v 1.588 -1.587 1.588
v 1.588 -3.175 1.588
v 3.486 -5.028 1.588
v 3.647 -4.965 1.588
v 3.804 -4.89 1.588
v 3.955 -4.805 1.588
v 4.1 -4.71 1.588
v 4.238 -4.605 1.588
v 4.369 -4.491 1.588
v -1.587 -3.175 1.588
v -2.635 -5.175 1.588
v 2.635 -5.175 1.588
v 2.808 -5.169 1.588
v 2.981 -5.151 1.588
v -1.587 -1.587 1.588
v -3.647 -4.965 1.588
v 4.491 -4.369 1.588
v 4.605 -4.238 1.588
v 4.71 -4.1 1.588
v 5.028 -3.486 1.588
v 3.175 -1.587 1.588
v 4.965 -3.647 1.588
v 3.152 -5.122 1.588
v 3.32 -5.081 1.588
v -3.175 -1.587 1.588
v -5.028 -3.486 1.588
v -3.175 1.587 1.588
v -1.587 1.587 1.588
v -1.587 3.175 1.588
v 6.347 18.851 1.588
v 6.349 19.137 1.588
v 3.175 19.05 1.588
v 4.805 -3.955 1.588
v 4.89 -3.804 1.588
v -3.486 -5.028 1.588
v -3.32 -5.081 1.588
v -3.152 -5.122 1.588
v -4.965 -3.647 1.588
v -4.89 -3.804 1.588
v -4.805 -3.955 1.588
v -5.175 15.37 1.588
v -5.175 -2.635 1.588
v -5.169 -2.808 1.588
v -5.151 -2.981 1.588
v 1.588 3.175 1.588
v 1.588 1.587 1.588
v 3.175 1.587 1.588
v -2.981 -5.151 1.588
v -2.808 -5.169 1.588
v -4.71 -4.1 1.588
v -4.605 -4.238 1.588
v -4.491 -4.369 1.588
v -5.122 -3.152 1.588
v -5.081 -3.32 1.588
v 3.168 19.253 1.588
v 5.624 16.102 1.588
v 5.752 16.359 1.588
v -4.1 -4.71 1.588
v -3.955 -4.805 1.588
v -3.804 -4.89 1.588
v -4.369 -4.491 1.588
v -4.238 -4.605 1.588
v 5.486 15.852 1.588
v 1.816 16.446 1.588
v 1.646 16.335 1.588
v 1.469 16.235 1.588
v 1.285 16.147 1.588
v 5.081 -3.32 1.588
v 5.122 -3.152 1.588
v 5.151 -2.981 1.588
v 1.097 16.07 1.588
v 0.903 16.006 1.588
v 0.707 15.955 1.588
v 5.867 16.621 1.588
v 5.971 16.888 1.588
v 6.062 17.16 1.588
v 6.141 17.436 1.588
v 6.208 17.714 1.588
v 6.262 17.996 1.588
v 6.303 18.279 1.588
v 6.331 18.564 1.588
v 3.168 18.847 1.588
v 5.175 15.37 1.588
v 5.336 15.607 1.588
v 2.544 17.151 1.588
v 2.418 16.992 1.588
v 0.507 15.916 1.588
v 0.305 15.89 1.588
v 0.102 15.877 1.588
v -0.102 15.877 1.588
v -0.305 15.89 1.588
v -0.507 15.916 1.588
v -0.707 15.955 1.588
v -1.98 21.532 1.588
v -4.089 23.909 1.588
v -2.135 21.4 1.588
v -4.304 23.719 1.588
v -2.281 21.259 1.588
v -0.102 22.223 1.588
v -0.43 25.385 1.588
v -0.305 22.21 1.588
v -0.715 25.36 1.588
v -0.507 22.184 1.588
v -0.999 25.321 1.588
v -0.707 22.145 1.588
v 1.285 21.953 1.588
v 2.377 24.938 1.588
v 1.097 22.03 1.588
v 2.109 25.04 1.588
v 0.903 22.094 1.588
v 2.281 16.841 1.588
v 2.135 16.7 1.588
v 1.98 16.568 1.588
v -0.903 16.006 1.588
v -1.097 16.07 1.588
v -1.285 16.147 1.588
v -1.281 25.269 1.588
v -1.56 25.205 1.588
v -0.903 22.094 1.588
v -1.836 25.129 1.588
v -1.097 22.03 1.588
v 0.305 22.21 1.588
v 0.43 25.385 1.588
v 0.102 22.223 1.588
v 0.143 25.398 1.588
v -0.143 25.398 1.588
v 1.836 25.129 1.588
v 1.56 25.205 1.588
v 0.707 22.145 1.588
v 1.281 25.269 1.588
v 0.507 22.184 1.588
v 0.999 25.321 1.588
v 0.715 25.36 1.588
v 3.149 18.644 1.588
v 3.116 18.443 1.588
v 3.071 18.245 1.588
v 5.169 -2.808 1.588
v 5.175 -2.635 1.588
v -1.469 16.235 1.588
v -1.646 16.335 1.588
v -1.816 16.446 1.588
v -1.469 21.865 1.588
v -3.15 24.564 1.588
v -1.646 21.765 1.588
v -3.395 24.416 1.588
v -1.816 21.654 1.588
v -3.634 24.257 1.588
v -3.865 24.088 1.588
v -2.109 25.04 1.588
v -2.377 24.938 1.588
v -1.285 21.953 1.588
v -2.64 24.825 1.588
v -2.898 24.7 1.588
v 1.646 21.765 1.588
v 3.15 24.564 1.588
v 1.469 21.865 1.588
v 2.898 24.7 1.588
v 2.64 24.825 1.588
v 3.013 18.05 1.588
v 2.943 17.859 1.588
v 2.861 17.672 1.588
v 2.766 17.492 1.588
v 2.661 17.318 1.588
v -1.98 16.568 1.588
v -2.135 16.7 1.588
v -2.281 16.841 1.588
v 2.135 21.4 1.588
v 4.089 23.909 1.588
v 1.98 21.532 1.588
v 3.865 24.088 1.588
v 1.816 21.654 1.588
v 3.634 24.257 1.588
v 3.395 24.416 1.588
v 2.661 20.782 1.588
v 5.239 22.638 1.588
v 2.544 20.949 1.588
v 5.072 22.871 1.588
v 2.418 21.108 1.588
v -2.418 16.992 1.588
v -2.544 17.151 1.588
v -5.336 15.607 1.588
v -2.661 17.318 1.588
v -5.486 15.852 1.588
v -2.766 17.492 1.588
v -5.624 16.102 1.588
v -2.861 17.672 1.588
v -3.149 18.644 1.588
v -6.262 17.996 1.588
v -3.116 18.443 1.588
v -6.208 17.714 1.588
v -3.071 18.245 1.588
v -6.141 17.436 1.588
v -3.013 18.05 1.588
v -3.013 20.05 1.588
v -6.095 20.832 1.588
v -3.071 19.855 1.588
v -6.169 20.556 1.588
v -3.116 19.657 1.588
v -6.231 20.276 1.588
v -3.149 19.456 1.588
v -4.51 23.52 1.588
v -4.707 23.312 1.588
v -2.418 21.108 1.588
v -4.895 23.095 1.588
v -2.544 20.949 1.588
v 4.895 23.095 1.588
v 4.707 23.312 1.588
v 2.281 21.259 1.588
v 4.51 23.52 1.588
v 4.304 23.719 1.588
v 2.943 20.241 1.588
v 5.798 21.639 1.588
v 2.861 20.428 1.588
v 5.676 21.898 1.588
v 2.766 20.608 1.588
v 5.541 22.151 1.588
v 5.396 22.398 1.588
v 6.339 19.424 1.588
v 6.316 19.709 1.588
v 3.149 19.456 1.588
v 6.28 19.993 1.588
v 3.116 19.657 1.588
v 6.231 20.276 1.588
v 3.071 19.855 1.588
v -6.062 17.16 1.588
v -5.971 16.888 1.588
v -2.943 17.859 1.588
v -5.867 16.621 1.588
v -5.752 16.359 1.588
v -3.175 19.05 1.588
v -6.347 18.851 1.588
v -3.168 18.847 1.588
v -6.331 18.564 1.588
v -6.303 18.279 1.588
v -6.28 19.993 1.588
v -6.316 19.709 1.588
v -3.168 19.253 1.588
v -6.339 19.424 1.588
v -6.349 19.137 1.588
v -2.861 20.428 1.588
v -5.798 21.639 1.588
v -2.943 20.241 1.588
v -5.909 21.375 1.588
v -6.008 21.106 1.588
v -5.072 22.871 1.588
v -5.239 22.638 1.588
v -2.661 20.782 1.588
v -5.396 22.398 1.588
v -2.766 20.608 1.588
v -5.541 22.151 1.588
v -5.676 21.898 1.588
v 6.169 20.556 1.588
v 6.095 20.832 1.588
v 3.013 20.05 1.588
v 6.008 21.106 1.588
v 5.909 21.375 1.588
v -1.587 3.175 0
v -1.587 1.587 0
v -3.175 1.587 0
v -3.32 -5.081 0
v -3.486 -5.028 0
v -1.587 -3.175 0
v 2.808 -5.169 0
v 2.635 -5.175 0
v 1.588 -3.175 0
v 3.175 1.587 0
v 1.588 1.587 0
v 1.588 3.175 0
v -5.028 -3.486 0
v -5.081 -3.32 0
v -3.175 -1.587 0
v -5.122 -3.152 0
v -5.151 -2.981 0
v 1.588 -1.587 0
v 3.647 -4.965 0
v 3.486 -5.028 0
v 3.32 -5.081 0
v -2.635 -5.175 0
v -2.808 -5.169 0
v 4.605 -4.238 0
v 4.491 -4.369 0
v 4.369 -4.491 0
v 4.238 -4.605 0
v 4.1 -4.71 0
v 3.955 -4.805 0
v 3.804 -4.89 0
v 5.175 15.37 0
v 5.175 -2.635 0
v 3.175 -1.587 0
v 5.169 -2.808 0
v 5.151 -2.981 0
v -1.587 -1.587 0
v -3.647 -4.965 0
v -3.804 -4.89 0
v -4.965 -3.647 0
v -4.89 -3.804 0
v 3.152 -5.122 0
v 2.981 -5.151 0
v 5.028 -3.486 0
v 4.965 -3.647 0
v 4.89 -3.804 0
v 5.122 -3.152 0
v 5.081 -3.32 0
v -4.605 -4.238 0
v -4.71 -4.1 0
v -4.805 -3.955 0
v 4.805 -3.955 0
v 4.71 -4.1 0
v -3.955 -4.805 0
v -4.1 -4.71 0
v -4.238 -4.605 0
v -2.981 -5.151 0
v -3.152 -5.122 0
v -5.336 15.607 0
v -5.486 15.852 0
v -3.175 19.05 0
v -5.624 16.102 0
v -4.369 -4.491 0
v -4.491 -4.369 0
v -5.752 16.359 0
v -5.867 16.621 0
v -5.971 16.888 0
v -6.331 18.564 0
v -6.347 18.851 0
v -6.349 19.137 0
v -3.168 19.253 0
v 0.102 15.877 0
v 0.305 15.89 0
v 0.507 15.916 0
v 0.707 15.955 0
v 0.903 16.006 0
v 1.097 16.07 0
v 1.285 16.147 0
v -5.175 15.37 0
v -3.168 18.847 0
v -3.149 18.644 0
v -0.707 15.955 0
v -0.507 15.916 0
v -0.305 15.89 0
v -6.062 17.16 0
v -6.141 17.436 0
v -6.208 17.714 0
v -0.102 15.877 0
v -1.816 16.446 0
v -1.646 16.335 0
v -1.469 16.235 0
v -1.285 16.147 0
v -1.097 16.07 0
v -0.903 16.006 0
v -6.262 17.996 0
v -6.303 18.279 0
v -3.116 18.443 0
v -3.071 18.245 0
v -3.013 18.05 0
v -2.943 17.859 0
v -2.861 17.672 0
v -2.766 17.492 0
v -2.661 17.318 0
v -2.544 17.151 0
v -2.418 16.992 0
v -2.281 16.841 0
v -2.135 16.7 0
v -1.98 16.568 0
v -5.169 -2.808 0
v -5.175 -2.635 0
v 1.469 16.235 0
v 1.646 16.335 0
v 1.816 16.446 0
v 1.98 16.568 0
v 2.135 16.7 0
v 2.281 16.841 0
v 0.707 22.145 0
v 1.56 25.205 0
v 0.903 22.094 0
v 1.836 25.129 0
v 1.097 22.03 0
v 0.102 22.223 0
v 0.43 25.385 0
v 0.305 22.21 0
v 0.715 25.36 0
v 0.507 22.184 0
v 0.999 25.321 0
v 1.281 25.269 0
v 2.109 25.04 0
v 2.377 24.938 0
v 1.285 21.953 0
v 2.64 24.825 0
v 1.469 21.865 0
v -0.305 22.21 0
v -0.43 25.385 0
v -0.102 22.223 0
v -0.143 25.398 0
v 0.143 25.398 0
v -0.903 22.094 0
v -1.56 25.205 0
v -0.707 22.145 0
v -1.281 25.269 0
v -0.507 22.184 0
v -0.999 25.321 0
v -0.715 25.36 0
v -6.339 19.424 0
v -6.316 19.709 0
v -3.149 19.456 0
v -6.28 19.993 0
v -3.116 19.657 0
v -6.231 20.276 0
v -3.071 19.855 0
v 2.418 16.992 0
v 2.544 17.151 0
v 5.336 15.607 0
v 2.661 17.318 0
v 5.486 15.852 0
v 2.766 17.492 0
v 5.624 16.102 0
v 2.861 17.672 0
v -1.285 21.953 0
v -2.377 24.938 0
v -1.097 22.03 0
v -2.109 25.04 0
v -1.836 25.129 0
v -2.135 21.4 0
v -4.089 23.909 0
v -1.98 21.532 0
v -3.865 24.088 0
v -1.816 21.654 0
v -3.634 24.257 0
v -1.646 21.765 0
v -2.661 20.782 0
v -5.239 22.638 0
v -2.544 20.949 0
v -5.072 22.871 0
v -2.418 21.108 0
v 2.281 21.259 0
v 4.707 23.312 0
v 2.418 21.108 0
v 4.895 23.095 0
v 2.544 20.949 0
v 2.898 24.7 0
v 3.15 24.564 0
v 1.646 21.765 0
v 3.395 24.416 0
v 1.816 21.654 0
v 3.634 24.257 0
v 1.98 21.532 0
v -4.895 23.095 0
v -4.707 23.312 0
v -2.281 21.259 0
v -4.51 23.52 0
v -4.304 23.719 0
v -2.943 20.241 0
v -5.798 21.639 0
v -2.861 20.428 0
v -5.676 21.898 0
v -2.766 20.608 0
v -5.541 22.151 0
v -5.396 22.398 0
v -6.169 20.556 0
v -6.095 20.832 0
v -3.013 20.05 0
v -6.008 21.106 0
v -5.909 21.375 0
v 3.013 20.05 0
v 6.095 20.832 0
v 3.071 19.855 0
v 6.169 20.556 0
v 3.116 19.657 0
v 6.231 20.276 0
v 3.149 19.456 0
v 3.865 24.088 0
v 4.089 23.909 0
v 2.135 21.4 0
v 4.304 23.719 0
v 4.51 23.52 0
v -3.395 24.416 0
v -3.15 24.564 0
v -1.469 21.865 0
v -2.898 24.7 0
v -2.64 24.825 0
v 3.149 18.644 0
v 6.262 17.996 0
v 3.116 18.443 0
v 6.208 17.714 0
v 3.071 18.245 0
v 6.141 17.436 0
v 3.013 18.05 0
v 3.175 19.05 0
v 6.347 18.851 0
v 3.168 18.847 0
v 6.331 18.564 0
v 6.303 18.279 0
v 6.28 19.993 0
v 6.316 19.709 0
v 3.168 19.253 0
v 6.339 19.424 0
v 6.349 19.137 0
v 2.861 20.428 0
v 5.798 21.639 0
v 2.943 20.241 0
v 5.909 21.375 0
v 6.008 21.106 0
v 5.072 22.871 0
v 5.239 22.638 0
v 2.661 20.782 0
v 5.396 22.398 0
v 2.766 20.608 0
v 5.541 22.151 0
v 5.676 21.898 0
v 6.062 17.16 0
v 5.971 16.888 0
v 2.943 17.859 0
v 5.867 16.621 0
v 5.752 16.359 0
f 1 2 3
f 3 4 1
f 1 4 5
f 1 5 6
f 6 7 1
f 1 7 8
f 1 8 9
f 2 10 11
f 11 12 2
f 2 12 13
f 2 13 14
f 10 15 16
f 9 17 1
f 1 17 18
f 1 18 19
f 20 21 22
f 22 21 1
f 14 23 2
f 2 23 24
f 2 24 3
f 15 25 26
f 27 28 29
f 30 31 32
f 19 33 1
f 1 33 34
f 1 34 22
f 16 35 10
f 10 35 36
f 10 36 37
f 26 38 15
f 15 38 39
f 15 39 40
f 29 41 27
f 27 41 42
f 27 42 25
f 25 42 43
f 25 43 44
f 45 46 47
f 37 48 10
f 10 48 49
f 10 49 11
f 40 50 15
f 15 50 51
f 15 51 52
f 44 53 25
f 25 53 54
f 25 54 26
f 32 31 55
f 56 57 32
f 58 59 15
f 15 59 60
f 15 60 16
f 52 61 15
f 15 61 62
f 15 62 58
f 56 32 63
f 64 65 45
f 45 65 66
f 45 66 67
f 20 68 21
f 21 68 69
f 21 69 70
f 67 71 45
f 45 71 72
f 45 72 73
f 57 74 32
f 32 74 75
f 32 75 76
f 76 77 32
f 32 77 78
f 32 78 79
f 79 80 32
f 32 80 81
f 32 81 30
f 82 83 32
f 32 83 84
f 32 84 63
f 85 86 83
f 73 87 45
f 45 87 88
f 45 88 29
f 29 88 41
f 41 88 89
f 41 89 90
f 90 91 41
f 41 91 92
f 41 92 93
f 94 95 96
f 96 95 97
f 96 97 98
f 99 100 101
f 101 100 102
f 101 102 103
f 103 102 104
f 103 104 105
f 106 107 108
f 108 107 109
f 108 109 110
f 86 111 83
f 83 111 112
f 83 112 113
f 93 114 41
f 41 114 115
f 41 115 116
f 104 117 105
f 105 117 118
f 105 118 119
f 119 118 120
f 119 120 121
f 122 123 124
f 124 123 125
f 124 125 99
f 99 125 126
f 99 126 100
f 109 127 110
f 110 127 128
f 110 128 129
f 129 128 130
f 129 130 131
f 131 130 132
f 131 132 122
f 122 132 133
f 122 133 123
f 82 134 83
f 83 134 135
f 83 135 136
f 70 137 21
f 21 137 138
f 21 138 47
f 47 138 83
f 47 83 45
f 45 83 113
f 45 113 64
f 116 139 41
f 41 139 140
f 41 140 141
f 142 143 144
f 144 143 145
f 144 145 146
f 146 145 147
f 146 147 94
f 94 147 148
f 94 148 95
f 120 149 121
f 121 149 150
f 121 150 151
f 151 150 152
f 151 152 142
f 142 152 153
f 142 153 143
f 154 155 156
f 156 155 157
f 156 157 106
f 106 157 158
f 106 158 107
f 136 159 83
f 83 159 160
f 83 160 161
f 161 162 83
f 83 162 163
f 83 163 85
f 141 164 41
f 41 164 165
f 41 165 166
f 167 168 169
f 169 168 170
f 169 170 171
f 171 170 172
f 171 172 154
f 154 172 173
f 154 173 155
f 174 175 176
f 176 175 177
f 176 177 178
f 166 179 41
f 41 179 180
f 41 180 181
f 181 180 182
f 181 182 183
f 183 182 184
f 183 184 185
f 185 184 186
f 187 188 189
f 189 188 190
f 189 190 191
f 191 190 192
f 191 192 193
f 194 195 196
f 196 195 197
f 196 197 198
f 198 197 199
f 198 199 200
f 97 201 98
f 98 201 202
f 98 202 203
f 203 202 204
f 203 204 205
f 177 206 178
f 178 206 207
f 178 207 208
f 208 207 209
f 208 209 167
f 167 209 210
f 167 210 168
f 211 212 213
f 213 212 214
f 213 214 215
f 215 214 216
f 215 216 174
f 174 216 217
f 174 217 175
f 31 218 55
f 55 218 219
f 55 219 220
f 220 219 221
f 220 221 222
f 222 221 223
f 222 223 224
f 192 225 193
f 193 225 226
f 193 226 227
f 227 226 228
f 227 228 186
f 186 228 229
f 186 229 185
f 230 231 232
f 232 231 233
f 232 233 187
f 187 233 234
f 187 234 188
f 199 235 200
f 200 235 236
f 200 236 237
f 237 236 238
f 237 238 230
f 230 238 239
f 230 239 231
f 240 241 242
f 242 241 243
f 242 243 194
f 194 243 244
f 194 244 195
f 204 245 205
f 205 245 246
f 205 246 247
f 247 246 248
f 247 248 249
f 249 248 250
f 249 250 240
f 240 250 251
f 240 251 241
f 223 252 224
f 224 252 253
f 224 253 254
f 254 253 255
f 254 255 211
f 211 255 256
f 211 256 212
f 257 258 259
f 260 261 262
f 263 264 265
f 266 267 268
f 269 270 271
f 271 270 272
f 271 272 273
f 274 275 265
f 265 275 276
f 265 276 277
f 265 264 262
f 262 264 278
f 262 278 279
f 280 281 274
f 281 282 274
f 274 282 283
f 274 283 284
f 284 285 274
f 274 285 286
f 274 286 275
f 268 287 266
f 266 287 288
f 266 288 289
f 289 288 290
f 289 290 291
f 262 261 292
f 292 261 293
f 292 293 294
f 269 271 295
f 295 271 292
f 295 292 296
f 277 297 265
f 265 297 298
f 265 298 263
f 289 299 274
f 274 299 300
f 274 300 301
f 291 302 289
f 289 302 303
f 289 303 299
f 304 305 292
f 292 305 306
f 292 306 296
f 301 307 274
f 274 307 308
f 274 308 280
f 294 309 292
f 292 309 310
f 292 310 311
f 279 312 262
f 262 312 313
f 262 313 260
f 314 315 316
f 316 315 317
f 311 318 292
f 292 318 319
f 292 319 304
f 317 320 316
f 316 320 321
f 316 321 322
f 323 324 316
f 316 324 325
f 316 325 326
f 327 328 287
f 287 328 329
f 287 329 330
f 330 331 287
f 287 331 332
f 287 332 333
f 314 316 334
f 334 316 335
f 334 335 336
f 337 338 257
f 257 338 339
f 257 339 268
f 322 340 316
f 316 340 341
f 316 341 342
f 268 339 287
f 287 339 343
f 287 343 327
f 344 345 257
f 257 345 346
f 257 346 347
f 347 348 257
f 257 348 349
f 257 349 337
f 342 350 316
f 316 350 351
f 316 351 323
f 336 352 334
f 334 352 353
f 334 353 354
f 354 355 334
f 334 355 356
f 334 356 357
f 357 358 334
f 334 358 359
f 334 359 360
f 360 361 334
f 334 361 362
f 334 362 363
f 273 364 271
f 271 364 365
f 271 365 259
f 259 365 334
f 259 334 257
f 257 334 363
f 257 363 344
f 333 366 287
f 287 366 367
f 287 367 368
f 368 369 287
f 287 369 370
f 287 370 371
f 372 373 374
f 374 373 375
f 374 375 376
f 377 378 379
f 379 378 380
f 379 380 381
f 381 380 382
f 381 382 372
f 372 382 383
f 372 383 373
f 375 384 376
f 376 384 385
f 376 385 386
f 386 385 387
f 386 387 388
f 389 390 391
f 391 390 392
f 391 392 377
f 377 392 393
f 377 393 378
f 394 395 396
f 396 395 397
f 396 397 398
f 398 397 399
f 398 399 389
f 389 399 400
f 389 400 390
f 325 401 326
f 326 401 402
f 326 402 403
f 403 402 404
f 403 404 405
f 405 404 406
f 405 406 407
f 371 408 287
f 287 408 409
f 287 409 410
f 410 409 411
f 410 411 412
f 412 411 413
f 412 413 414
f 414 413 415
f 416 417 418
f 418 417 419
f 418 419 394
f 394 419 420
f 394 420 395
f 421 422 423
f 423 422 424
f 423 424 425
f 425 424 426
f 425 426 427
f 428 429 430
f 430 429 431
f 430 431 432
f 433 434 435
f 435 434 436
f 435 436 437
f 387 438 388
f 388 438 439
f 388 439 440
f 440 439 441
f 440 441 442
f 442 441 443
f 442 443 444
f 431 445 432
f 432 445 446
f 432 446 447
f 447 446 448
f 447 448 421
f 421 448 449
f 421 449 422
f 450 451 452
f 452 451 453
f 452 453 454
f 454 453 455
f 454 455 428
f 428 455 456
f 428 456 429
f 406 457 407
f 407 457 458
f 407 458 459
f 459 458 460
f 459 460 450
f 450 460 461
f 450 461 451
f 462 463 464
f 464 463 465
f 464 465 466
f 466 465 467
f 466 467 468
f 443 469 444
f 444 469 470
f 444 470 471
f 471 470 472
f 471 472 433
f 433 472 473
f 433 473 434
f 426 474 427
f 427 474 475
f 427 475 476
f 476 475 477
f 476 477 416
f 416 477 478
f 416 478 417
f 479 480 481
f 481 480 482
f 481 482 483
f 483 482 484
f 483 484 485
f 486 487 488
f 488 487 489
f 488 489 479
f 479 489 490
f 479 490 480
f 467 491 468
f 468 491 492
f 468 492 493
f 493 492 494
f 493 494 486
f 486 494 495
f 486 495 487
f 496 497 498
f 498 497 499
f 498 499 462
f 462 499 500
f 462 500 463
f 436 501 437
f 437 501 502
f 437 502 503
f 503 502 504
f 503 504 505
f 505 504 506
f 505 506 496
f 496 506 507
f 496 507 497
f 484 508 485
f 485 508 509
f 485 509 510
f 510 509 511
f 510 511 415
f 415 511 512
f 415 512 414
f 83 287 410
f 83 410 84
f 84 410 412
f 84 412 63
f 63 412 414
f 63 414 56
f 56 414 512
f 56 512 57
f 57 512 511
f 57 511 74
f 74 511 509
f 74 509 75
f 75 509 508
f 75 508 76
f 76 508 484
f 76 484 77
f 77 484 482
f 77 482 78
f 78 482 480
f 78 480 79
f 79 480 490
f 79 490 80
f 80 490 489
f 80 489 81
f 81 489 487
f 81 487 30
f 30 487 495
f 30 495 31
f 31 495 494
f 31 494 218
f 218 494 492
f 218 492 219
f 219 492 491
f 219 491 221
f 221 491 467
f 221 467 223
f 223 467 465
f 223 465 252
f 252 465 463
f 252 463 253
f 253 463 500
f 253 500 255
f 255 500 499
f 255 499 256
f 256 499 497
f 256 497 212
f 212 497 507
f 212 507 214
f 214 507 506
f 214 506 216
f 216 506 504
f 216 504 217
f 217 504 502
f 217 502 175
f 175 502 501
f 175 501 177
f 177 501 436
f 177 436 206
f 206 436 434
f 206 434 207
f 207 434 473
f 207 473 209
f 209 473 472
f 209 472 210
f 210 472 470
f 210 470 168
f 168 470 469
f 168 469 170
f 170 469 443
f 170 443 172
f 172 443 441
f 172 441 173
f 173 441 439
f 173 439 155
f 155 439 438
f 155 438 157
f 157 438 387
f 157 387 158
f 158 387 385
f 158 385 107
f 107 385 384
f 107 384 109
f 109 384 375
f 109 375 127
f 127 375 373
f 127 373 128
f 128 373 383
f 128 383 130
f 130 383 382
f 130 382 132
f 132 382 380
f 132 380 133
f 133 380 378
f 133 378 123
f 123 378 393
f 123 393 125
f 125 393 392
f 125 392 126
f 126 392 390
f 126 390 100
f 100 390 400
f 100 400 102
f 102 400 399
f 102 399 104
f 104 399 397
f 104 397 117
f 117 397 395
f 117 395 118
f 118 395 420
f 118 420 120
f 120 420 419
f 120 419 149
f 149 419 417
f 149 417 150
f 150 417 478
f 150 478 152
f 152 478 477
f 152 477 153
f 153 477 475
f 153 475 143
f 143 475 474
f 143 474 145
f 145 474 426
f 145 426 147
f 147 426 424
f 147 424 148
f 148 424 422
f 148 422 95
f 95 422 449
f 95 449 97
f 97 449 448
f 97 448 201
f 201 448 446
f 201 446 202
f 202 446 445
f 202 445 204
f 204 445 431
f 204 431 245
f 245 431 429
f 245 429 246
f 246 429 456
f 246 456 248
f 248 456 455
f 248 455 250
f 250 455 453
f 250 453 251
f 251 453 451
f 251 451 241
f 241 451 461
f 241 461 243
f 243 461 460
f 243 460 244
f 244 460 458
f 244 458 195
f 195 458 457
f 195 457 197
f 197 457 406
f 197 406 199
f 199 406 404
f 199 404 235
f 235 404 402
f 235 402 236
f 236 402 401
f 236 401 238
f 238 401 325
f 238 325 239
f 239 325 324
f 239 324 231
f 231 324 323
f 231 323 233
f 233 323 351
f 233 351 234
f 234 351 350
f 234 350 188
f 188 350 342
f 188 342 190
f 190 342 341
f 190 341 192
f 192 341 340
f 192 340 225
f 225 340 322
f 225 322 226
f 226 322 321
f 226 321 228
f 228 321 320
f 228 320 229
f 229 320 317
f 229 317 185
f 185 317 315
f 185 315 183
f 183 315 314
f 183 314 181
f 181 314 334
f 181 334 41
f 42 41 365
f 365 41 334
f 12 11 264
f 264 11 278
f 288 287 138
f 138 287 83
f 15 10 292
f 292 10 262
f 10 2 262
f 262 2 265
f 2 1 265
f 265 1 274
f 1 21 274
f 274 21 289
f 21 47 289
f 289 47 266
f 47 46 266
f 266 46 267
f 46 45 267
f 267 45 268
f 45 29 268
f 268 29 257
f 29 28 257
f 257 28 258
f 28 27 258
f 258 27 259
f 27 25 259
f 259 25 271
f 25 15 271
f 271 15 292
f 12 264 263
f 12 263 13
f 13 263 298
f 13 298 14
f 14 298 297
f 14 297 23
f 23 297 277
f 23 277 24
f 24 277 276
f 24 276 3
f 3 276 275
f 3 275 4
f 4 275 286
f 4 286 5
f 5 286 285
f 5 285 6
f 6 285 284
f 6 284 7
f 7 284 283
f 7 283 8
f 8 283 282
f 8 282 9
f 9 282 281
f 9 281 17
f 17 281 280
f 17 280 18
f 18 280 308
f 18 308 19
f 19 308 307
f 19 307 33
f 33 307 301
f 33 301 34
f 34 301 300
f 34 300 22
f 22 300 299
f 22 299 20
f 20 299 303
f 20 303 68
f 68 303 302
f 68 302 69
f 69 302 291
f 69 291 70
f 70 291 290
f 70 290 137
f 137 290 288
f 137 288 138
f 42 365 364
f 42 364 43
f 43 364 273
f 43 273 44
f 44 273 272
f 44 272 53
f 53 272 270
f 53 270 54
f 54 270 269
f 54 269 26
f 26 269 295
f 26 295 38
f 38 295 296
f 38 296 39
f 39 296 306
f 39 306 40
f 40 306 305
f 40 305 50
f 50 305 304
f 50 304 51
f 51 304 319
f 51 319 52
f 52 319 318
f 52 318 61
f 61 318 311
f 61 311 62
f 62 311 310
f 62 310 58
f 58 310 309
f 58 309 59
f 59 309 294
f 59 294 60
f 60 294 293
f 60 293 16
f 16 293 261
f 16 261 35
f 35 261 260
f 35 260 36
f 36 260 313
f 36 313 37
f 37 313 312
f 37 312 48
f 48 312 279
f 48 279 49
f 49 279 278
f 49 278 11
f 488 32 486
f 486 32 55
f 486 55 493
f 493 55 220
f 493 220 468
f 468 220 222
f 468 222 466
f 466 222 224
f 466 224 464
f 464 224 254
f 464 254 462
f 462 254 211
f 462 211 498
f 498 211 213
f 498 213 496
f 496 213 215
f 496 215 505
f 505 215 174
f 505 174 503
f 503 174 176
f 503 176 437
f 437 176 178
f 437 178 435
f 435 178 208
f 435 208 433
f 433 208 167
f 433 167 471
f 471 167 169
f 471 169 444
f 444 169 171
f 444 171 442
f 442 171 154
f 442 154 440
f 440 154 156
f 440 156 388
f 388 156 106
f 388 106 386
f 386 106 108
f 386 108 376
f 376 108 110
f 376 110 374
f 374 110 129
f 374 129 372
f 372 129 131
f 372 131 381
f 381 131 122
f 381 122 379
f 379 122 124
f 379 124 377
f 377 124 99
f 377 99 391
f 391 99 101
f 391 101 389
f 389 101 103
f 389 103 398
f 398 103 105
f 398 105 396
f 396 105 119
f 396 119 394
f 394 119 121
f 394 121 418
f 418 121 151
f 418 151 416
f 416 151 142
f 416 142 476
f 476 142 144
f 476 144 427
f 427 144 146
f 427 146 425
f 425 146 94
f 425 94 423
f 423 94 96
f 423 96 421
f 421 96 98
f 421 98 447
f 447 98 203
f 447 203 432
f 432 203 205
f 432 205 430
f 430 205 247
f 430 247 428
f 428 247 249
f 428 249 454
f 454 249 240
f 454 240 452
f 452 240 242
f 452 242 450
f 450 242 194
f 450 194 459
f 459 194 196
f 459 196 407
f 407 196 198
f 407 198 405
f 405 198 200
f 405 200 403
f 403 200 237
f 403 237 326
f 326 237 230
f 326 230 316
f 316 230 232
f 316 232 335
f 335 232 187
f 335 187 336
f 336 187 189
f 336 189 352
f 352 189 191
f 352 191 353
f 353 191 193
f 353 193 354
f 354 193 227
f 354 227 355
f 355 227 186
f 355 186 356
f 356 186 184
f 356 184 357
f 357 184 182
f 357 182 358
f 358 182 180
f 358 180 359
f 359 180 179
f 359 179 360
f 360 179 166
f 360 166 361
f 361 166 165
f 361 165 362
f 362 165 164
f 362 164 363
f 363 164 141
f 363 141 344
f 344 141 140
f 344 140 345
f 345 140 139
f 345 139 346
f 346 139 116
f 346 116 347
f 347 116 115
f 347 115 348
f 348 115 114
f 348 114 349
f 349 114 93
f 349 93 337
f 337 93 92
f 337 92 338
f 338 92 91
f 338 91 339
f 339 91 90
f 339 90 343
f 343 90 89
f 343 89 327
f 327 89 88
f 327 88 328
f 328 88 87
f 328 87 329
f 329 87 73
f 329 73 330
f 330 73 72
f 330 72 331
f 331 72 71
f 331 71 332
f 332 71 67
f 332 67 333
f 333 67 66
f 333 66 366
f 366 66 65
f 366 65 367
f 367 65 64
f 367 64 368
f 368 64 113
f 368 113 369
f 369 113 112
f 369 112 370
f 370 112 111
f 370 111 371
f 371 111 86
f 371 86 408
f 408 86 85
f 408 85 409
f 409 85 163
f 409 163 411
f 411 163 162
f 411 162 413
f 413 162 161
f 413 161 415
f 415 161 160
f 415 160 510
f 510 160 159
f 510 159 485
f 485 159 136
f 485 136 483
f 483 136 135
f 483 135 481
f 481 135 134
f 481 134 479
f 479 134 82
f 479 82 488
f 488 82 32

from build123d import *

# Parameters (mm, degrees)
BOSS_EXTRUDE1_DEPTH = 1.5875
FILLET1_R           = 2.54
SKETCH2_R           = 3.175
CUT_EXTRUDE1_DEPTH  = 27.229804731


with BuildPart() as part:
    # Sketch1 → Boss-Extrude1 (new body)
    with BuildSketch(Plane.XY):
        with BuildLine():
            Line((-5.175, 15.370071332), (-5.175, -5.175))
            Line((-5.175, -5.175), (5.175, -5.175))
            Line((5.175, -5.175), (5.175, 15.370071332))
            ThreePointArc((5.175, 15.370071332), (0, 25.4), (-5.175, 15.370071332))
        make_face()
        Polygon((-3.175, -1.5875), (-3.175, 1.5875), (-1.5875, 1.5875), (-1.5875, 3.175), (1.5875, 3.175), (1.5875, 1.5875), (3.175, 1.5875), (3.175, -1.5875), (1.5875, -1.5875), (1.5875, -3.175), (-1.5875, -3.175), (-1.5875, -1.5875), align=None, mode=Mode.SUBTRACT)
    extrude(amount=BOSS_EXTRUDE1_DEPTH)

    # Fillet1
    fillet1_edges = [part.edges().sort_by_distance(p)[0] for p in [
        (5.175, -5.175, 0.79375),
        (-5.175, -5.175, 0.79375),
    ]]
    fillet(fillet1_edges, radius=FILLET1_R)

    # Sketch2 → Cut-Extrude1 (cut, through all)
    with BuildSketch(Plane.XY.offset(1.5875)):
        with Locations((0, 19.05)):
            Circle(SKETCH2_R)
    extrude(amount=-CUT_EXTRUDE1_DEPTH, mode=Mode.SUBTRACT)


solid = part.part
